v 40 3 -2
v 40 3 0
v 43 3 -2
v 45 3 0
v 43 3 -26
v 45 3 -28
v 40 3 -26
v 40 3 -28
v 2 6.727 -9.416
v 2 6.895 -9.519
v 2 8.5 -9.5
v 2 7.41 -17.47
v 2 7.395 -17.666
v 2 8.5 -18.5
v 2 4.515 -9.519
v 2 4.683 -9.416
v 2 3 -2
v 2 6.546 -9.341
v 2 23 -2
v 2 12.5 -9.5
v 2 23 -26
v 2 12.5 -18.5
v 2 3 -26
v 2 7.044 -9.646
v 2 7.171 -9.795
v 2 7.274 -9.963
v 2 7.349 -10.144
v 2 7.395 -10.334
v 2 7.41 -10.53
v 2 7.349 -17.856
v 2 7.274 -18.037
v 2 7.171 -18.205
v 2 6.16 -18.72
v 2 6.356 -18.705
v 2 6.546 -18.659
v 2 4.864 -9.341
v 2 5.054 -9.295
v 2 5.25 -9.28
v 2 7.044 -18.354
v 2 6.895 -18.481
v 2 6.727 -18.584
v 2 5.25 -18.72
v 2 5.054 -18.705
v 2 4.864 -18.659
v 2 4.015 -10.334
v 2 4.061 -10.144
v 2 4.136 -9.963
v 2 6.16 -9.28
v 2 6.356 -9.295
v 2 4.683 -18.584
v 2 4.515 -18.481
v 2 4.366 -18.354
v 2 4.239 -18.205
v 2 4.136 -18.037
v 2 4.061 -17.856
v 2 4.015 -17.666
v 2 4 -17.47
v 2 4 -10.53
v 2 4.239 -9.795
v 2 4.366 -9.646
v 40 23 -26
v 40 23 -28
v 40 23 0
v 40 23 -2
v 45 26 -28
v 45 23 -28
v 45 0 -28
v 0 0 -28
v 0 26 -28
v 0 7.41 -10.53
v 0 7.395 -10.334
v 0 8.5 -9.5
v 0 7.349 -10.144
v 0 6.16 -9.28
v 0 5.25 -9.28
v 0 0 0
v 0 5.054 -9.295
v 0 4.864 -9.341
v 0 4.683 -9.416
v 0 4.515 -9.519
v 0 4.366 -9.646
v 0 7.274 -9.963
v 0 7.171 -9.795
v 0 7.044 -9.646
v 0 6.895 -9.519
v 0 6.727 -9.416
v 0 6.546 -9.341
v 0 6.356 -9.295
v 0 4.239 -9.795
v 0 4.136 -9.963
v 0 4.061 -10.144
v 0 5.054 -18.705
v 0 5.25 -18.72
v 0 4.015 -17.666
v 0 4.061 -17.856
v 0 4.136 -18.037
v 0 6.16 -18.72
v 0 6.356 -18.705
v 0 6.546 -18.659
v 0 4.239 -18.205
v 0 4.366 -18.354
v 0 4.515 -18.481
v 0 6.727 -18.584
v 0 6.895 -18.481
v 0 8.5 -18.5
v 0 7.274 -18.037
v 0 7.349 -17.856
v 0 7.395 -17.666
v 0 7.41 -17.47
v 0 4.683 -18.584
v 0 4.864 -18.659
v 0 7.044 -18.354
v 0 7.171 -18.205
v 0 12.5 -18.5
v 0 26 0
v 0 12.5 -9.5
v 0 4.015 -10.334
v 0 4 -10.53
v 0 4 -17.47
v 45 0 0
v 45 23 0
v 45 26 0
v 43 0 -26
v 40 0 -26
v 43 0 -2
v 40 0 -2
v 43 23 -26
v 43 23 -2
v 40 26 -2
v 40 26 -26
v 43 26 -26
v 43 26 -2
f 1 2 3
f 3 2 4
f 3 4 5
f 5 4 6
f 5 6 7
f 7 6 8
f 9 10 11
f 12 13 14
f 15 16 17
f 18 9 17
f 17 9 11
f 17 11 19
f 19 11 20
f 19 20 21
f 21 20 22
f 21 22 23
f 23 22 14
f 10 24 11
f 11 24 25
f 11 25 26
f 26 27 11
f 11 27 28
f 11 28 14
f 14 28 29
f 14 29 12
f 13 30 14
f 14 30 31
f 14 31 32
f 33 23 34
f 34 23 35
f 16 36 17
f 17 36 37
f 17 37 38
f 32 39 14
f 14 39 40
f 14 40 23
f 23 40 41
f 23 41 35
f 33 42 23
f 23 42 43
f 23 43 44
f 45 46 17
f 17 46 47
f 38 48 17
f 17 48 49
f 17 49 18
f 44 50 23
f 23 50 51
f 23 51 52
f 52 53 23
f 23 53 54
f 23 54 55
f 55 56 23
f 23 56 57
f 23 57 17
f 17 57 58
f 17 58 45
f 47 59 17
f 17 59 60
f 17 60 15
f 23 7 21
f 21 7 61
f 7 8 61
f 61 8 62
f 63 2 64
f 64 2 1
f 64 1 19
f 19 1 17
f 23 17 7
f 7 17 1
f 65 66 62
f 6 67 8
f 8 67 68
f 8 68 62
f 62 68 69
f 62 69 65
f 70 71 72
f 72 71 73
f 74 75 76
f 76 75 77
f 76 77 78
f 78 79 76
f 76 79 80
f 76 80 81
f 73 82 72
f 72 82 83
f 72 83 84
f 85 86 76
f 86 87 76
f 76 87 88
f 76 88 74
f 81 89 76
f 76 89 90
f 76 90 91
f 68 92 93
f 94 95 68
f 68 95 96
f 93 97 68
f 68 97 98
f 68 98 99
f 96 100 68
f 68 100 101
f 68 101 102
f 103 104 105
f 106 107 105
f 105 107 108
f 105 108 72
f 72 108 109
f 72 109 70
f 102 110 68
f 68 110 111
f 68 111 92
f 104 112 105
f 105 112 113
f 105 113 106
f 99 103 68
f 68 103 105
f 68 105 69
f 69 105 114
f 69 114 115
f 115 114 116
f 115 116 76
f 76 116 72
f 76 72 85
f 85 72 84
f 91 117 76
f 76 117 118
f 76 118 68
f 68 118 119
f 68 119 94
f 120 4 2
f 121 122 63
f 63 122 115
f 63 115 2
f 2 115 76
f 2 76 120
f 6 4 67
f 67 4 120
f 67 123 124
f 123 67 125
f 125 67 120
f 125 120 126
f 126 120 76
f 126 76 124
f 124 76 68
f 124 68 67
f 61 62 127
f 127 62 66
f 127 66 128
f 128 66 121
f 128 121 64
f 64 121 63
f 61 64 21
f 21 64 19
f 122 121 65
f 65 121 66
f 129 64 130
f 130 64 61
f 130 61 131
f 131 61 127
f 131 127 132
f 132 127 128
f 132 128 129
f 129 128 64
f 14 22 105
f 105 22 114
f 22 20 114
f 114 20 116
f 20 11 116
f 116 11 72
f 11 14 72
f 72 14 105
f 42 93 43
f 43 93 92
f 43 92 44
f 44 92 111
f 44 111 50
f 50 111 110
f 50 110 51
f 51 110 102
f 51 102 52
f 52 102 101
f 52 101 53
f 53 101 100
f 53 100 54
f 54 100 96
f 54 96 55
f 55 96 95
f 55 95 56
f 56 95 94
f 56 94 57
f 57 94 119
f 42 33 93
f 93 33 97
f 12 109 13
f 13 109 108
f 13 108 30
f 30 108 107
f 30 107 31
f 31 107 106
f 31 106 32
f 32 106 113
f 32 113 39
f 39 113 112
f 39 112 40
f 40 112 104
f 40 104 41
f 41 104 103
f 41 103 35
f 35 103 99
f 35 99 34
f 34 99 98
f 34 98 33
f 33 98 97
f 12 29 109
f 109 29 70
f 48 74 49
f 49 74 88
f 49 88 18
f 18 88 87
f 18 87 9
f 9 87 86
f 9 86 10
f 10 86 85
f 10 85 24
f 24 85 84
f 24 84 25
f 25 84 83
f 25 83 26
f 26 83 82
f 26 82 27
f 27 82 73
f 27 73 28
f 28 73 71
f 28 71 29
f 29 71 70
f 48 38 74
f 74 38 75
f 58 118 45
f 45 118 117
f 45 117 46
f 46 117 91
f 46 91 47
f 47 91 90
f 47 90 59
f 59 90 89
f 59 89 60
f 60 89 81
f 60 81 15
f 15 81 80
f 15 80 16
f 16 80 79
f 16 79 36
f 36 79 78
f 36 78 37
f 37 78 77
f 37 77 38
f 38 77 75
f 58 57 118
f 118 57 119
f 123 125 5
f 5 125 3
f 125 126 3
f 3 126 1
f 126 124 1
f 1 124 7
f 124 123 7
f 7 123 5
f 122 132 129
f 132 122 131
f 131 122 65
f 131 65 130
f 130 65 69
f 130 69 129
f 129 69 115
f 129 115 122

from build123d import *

# Parameters (mm, degrees)
SKETCH1_W           = 45
SKETCH1_H           = 28
BOSS_EXTRUDE1_DEPTH = 3
BOSS_EXTRUDE2_DEPTH = 22
SKETCH4_W           = 45
SKETCH4_H           = 28
SKETCH4_W_2         = 3
SKETCH4_H_2         = 24
BOSS_EXTRUDE4_DEPTH = 2
SKETCH5_W           = 9
SKETCH5_H           = 4
CUT_EXTRUDE1_DEPTH  = 2
SKETCH6_W           = 3
SKETCH6_H           = 24
CUT_EXTRUDE2_DEPTH  = 3
SKETCH7_W           = 45
SKETCH7_H           = 28
SKETCH7_W_2         = 3
SKETCH7_H_2         = 24
BOSS_EXTRUDE5_DEPTH = 1


with BuildPart() as part:
    # Sketch1 → Boss-Extrude1 (new body)
    with BuildSketch(Plane(origin=(0, 0, 0), x_dir=(1, 0, 0), z_dir=(0, 1, 0))):
        with Locations((22.5, 14)):
            Rectangle(SKETCH1_W, SKETCH1_H)
    extrude(amount=BOSS_EXTRUDE1_DEPTH)

    # Sketch2 → Boss-Extrude2 (add)
    with BuildSketch(Plane(origin=(0, 3, 0), x_dir=(1, 0, 0), z_dir=(0, 1, 0))):
        Polygon((40, 26), (40, 28), (0, 28), (0, 0), (40, 0), (40, 2), (2, 2), (2, 26), align=None)
    extrude(amount=BOSS_EXTRUDE2_DEPTH)

    # Sketch4 → Boss-Extrude4 (add)
    with BuildSketch(Plane(origin=(0, 25, 0), x_dir=(1, 0, 0), z_dir=(0, 1, 0))):
        with Locations((22.5, 14)):
            Rectangle(SKETCH4_W, SKETCH4_H)
        with Locations((41.5, 14)):
            Rectangle(SKETCH4_W_2, SKETCH4_H_2, mode=Mode.SUBTRACT)
    extrude(amount=-BOSS_EXTRUDE4_DEPTH)

    # Sketch5 → Cut-Extrude1 (cut)
    with BuildSketch(Plane.ZY):
        with BuildLine():
            Line((-18.72, 5.25), (-18.72, 6.16))
            ThreePointArc((-18.72, 6.16), (-18.353883476, 7.043883476), (-17.47, 7.41))
            Line((-17.47, 7.41), (-10.53, 7.41))
            ThreePointArc((-10.53, 7.41), (-9.646116524, 7.043883476), (-9.28, 6.16))
            Line((-9.28, 6.16), (-9.28, 5.25))
            ThreePointArc((-9.28, 5.25), (-9.646116524, 4.366116524), (-10.53, 4))
            Line((-10.53, 4), (-17.47, 4))
            ThreePointArc((-17.47, 4), (-18.353883476, 4.366116524), (-18.72, 5.25))
        make_face()
        with Locations((-14, 10.5)):
            Rectangle(SKETCH5_W, SKETCH5_H)
    extrude(amount=-CUT_EXTRUDE1_DEPTH, mode=Mode.SUBTRACT)

    # Sketch6 → Cut-Extrude2 (cut)
    with BuildSketch(Plane(origin=(0, 3, 0), x_dir=(1, 0, 0), z_dir=(0, 1, 0))):
        with Locations((41.5, 14)):
            Rectangle(SKETCH6_W, SKETCH6_H)
    extrude(amount=-CUT_EXTRUDE2_DEPTH, mode=Mode.SUBTRACT)

    # Sketch7 → Boss-Extrude5 (add)
    with BuildSketch(Plane(origin=(0, 25, 0), x_dir=(1, 0, 0), z_dir=(0, 1, 0))):
        with Locations((22.5, 14)):
            Rectangle(SKETCH7_W, SKETCH7_H)
        with Locations((41.5, 14)):
            Rectangle(SKETCH7_W_2, SKETCH7_H_2, mode=Mode.SUBTRACT)
    extrude(amount=BOSS_EXTRUDE5_DEPTH)


solid = part.part
